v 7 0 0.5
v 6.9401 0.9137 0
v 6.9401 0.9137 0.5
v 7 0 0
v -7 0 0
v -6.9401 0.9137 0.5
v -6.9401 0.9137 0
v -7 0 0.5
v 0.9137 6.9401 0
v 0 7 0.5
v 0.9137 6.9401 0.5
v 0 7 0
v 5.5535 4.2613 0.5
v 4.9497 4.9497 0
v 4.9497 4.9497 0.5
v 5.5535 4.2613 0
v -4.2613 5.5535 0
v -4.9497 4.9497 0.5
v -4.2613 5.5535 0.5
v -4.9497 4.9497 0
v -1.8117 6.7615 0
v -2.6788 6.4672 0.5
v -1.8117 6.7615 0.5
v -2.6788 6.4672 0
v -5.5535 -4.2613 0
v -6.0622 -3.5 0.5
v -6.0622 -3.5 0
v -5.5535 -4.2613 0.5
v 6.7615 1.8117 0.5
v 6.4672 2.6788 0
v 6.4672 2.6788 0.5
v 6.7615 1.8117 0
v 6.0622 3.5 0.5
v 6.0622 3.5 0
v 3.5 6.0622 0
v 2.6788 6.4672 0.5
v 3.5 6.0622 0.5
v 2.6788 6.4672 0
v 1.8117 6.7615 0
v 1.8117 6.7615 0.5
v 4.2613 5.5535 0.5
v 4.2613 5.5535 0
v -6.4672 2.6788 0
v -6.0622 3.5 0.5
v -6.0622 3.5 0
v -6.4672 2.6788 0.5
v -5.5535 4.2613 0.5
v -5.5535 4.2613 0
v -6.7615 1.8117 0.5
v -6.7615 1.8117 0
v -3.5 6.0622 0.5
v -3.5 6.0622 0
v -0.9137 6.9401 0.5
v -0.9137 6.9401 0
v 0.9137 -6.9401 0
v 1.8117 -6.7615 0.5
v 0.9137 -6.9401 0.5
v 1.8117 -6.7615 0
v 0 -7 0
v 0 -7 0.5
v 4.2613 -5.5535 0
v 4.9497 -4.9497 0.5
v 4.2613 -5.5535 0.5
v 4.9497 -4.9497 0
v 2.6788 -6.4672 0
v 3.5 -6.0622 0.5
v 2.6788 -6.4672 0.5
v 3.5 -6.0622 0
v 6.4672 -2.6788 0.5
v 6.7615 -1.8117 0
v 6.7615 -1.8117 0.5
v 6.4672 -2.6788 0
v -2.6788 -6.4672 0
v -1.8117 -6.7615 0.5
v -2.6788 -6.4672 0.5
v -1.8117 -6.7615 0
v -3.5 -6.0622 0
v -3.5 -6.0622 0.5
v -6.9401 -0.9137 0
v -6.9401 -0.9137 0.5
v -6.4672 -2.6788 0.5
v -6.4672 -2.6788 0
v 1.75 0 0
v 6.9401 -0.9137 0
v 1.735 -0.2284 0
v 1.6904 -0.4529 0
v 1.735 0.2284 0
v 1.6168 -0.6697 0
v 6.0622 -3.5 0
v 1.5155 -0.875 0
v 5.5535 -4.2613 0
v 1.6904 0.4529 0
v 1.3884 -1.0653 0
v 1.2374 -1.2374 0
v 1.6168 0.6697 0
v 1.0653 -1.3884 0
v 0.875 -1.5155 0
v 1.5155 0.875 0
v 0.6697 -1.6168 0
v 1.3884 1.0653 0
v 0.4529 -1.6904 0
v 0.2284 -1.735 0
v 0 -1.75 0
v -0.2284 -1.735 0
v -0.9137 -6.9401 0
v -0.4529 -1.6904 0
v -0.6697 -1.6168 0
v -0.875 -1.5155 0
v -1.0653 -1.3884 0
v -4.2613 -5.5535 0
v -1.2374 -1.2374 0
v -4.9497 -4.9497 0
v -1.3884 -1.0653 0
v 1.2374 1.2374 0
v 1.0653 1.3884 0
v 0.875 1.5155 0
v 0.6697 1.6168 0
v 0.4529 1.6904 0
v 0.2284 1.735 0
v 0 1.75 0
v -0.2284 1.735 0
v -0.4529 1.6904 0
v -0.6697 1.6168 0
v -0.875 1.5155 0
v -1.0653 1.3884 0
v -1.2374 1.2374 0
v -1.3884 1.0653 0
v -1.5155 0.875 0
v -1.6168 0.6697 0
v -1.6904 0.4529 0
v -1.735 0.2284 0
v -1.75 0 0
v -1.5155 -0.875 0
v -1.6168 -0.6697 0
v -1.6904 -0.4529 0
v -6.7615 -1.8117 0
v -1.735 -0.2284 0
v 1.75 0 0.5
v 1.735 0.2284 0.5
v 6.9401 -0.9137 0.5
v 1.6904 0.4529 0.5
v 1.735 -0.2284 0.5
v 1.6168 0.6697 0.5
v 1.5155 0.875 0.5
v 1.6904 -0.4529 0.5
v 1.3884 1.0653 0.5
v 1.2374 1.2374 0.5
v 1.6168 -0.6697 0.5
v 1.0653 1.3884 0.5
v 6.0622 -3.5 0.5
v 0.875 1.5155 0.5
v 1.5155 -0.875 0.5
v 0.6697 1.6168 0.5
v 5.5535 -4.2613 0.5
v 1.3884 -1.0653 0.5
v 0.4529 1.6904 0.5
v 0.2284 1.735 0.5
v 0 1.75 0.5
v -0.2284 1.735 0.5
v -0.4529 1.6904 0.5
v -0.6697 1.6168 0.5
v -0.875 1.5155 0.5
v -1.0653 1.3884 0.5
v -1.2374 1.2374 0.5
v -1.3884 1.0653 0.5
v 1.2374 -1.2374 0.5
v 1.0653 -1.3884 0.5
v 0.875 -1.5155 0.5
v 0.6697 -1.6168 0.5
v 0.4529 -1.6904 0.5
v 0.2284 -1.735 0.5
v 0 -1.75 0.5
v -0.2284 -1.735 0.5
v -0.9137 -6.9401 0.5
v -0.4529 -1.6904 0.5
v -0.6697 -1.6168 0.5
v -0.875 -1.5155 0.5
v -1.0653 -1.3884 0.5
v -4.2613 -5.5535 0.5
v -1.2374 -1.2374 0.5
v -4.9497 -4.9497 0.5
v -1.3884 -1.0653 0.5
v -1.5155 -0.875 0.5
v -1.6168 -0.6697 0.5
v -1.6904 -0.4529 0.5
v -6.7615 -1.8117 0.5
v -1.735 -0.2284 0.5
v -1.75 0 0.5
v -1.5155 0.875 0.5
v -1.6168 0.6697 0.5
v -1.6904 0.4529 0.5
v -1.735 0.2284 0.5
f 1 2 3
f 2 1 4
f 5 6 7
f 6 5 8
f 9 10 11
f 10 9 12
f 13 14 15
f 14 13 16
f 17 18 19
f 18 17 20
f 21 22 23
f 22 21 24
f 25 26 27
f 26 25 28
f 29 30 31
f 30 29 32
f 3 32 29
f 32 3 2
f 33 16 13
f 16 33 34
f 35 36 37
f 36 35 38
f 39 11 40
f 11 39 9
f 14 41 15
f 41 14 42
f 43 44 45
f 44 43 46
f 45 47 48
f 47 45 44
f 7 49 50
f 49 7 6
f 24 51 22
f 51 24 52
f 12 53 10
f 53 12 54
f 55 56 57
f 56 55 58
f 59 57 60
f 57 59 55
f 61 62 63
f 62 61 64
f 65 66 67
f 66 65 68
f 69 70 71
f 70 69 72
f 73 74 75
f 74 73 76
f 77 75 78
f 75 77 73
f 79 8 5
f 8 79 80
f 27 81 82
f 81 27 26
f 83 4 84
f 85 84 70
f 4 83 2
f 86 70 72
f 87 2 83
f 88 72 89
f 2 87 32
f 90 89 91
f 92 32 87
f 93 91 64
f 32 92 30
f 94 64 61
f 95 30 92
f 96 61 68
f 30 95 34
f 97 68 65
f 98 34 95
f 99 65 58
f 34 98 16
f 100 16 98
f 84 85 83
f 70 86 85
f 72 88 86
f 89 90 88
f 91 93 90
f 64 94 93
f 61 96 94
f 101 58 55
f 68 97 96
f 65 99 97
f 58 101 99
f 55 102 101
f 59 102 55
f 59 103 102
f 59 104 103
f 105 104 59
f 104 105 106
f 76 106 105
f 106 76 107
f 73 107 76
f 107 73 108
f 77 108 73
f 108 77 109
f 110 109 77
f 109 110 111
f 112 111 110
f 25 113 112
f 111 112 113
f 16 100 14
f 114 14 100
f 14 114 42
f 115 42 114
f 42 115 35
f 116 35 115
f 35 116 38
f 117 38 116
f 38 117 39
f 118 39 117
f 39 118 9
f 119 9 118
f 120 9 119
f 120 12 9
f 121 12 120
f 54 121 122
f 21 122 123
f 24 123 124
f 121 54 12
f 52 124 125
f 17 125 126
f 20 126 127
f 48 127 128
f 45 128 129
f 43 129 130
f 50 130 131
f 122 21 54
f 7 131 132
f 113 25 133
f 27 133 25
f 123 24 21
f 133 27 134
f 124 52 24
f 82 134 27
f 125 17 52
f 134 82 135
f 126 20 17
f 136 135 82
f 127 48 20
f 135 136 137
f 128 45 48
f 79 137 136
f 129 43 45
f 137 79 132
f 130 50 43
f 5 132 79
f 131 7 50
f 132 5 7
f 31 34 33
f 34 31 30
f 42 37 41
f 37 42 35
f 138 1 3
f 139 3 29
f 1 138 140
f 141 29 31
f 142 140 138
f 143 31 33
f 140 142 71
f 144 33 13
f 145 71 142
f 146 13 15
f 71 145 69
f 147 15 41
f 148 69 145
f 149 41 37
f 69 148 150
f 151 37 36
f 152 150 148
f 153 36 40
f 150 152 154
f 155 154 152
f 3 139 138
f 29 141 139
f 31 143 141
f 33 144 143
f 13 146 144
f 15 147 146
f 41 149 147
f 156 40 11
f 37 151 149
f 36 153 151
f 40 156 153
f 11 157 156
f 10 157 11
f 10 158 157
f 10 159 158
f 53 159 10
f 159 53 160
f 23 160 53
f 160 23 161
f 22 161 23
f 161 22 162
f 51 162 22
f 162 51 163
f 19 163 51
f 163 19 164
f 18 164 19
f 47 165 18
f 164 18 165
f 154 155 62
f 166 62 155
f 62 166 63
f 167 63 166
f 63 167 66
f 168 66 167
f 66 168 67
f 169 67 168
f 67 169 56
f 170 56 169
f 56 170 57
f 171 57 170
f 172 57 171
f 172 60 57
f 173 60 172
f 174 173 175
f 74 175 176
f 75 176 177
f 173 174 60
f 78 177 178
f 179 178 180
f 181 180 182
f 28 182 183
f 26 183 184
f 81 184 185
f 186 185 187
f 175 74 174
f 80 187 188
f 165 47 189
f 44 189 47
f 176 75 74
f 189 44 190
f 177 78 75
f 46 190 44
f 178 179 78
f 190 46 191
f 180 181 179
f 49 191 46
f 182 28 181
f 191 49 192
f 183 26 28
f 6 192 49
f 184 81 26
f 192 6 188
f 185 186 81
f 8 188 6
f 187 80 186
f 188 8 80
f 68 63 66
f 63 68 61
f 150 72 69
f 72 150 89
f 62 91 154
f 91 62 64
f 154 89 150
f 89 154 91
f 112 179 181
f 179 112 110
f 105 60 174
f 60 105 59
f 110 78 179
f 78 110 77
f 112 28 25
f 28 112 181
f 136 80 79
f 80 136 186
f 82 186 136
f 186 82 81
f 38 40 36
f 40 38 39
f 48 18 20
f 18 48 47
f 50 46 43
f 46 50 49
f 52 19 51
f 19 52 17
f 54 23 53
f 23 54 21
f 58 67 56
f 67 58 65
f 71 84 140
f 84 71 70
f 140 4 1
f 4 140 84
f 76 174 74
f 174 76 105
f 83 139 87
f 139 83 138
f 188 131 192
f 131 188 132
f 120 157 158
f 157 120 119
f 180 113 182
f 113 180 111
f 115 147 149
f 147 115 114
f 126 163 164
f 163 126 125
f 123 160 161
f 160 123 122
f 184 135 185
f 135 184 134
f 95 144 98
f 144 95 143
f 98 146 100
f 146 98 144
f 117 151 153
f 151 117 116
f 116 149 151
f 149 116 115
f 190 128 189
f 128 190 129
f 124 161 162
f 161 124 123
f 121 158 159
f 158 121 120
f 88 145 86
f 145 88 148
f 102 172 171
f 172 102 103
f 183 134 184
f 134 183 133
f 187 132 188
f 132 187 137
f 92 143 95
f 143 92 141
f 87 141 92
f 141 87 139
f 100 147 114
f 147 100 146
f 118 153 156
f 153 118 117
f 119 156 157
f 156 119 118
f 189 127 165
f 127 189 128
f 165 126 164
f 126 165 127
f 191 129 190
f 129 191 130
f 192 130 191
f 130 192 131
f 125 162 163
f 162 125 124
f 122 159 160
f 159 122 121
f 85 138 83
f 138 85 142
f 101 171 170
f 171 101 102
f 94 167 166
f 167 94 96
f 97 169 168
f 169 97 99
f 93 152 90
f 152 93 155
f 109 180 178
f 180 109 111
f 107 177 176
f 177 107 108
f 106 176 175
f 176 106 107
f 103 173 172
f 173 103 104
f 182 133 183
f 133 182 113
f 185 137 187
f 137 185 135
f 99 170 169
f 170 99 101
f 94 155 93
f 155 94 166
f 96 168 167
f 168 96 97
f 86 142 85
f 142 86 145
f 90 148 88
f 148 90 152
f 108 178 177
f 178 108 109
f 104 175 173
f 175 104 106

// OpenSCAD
// Gen-DE — assembly gap shim, h = run_clear (rotor face -> flange); copper is inside the flanges
include <parameters.scad>;
$fn = 48;
difference() {
    cylinder(d=spacer_pad_od, h=gap_spacer_h);
    translate([0, 0, -0.1]) cylinder(d=spacer_pad_id, h=gap_spacer_h + 0.2);
}
